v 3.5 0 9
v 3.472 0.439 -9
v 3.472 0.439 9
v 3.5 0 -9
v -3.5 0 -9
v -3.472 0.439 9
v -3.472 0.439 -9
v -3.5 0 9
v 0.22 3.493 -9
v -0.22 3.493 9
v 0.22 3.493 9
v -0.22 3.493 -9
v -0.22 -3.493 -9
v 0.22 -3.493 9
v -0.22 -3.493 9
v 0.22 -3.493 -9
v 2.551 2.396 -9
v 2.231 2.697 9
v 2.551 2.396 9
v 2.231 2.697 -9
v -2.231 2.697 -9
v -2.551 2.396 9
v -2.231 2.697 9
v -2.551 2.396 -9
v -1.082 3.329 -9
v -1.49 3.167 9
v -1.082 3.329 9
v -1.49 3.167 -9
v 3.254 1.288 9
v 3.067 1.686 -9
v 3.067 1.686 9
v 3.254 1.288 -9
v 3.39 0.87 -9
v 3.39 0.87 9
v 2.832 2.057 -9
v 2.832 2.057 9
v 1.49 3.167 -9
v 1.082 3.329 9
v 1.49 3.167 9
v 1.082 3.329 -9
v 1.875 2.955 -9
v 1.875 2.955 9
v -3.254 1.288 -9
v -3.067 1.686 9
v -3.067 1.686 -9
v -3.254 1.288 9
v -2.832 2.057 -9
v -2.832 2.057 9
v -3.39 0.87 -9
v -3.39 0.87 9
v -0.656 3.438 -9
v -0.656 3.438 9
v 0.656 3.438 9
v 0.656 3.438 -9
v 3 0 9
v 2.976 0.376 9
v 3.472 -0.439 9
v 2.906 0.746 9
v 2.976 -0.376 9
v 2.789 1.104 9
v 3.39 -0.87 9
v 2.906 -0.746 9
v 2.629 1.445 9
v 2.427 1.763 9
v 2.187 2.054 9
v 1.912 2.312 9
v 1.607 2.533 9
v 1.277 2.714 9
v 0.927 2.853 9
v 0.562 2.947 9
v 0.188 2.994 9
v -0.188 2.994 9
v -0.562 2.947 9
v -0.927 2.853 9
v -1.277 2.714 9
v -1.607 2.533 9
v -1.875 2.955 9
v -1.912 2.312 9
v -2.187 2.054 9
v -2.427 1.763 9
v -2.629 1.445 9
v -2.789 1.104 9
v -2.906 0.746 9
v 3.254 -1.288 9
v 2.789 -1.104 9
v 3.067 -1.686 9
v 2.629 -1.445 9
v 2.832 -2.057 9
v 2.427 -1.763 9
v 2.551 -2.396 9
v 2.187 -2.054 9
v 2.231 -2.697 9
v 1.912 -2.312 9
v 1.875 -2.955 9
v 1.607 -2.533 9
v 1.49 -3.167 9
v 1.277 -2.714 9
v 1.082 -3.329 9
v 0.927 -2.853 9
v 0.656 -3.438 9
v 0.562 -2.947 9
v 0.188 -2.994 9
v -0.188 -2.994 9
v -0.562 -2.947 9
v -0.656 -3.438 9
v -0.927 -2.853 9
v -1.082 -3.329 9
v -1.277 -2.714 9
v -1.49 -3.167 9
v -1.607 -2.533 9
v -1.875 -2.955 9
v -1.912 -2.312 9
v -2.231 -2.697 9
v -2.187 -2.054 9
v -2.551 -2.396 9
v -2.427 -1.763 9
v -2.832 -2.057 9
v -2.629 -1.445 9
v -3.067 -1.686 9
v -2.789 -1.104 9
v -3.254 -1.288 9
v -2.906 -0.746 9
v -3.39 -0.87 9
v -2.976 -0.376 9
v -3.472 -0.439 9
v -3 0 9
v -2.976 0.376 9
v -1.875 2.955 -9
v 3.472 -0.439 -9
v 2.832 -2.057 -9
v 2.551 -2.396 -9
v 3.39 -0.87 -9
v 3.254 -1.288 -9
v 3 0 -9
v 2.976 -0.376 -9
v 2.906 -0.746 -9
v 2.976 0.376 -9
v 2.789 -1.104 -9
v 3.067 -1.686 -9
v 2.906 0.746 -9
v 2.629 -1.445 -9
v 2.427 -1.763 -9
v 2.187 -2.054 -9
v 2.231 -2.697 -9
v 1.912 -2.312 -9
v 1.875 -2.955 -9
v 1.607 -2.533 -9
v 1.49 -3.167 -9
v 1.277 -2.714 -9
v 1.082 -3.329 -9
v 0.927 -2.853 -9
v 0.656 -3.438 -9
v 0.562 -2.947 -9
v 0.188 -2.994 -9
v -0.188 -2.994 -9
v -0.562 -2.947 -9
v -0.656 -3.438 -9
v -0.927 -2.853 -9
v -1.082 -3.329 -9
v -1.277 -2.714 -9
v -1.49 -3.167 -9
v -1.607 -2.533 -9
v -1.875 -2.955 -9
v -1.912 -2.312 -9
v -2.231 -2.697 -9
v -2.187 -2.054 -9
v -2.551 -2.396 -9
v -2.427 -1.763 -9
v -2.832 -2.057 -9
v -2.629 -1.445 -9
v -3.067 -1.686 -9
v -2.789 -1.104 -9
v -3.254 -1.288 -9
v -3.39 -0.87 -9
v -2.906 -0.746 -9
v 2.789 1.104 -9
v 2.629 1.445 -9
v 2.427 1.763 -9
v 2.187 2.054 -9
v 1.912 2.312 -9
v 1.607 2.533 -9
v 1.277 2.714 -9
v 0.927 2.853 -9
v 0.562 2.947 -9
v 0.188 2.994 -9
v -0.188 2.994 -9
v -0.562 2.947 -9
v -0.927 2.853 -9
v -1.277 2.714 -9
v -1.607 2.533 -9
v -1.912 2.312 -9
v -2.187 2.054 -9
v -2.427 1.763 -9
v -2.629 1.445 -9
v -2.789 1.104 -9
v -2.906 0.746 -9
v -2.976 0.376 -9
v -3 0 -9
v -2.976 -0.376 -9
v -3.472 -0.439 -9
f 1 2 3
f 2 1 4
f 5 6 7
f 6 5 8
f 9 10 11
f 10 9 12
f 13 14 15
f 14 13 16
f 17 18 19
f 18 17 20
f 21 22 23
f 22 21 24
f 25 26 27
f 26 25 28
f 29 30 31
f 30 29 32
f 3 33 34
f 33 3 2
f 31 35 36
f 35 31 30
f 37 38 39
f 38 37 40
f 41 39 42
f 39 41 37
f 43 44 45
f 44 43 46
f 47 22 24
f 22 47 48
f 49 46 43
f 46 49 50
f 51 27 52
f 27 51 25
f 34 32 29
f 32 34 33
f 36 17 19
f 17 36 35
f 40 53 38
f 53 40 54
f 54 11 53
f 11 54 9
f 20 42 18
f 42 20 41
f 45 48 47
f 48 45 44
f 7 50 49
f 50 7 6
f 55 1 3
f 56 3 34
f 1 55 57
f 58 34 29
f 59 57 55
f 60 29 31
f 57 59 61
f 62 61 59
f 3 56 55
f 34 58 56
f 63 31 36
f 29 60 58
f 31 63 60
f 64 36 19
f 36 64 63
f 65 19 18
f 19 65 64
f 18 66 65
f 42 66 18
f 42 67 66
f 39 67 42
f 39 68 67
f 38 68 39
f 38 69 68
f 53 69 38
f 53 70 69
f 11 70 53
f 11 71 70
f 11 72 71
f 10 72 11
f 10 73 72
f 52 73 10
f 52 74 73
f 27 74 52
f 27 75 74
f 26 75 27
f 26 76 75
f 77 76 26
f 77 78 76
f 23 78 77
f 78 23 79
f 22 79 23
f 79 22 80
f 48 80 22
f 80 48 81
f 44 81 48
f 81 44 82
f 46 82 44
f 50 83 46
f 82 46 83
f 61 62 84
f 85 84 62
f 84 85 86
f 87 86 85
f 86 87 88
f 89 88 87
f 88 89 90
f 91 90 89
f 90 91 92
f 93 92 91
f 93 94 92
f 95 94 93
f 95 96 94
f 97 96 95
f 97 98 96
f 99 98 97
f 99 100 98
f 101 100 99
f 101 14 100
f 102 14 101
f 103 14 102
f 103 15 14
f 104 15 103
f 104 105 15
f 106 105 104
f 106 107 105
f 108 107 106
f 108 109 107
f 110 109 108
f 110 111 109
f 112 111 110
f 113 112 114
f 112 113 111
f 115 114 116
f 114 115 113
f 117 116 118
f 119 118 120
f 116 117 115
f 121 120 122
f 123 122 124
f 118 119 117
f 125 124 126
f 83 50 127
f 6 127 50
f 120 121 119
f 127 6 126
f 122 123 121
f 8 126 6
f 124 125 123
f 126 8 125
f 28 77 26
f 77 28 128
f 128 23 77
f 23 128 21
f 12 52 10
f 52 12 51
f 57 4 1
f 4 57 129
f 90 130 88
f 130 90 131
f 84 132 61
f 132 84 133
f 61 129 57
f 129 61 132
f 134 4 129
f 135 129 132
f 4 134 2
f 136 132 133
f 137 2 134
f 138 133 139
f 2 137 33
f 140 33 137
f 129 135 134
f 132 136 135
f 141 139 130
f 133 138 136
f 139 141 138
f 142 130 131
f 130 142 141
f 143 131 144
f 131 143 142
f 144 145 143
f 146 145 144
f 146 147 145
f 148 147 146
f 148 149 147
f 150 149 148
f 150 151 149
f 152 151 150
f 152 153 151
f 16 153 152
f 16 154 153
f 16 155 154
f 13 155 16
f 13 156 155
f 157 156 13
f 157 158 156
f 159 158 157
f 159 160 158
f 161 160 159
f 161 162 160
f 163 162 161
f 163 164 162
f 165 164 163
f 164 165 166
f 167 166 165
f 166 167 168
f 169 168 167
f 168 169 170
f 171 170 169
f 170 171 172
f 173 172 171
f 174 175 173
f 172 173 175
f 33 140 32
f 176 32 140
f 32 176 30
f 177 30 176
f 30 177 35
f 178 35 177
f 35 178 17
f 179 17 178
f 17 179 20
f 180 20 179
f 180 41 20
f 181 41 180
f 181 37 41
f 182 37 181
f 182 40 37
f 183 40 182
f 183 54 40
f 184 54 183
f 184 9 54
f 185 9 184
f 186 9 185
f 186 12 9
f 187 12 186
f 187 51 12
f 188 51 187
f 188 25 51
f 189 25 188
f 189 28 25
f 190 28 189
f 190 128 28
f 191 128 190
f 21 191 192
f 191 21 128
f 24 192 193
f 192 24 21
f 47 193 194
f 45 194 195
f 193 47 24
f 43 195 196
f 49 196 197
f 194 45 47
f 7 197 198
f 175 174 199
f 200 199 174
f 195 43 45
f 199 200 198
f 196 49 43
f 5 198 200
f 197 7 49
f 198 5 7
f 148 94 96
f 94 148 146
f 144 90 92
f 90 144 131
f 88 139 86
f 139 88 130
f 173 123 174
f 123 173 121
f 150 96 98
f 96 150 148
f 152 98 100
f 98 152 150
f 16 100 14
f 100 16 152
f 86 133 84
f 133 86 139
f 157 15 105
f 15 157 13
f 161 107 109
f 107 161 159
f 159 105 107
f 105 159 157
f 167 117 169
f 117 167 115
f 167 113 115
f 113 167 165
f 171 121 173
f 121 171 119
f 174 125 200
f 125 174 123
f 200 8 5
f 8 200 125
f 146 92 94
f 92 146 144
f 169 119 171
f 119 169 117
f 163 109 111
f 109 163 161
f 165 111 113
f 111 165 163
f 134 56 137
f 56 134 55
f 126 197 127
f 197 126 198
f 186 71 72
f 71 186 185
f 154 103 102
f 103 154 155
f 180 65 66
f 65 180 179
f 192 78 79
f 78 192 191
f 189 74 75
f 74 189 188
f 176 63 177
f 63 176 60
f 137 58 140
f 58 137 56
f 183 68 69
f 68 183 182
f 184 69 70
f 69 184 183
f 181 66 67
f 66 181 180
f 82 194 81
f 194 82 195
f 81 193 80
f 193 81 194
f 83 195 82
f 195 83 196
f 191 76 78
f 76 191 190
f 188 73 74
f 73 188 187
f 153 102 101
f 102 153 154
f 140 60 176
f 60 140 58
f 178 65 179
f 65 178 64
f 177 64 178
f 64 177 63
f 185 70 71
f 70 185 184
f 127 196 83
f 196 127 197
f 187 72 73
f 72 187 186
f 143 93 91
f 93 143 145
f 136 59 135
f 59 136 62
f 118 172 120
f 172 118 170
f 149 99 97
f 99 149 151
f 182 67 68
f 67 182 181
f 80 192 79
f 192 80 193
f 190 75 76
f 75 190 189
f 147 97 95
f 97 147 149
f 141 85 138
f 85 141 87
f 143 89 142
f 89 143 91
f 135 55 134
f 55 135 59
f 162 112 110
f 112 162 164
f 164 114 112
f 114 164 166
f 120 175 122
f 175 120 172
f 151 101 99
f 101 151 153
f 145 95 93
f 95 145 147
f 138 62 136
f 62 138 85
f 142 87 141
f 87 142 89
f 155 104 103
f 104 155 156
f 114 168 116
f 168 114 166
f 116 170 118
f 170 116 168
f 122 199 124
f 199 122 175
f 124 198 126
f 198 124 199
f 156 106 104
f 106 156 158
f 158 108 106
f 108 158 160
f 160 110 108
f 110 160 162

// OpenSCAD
$fn = 50;


difference() {
	union() {
		translate(v = [0, 0, -9.0000000000]) {
			cylinder(h = 18, r = 3.5000000000);
		}
	}
	union() {
		translate(v = [0, 0, -100.0000000000]) {
			cylinder(h = 200, r = 3);
		}
	}
}
